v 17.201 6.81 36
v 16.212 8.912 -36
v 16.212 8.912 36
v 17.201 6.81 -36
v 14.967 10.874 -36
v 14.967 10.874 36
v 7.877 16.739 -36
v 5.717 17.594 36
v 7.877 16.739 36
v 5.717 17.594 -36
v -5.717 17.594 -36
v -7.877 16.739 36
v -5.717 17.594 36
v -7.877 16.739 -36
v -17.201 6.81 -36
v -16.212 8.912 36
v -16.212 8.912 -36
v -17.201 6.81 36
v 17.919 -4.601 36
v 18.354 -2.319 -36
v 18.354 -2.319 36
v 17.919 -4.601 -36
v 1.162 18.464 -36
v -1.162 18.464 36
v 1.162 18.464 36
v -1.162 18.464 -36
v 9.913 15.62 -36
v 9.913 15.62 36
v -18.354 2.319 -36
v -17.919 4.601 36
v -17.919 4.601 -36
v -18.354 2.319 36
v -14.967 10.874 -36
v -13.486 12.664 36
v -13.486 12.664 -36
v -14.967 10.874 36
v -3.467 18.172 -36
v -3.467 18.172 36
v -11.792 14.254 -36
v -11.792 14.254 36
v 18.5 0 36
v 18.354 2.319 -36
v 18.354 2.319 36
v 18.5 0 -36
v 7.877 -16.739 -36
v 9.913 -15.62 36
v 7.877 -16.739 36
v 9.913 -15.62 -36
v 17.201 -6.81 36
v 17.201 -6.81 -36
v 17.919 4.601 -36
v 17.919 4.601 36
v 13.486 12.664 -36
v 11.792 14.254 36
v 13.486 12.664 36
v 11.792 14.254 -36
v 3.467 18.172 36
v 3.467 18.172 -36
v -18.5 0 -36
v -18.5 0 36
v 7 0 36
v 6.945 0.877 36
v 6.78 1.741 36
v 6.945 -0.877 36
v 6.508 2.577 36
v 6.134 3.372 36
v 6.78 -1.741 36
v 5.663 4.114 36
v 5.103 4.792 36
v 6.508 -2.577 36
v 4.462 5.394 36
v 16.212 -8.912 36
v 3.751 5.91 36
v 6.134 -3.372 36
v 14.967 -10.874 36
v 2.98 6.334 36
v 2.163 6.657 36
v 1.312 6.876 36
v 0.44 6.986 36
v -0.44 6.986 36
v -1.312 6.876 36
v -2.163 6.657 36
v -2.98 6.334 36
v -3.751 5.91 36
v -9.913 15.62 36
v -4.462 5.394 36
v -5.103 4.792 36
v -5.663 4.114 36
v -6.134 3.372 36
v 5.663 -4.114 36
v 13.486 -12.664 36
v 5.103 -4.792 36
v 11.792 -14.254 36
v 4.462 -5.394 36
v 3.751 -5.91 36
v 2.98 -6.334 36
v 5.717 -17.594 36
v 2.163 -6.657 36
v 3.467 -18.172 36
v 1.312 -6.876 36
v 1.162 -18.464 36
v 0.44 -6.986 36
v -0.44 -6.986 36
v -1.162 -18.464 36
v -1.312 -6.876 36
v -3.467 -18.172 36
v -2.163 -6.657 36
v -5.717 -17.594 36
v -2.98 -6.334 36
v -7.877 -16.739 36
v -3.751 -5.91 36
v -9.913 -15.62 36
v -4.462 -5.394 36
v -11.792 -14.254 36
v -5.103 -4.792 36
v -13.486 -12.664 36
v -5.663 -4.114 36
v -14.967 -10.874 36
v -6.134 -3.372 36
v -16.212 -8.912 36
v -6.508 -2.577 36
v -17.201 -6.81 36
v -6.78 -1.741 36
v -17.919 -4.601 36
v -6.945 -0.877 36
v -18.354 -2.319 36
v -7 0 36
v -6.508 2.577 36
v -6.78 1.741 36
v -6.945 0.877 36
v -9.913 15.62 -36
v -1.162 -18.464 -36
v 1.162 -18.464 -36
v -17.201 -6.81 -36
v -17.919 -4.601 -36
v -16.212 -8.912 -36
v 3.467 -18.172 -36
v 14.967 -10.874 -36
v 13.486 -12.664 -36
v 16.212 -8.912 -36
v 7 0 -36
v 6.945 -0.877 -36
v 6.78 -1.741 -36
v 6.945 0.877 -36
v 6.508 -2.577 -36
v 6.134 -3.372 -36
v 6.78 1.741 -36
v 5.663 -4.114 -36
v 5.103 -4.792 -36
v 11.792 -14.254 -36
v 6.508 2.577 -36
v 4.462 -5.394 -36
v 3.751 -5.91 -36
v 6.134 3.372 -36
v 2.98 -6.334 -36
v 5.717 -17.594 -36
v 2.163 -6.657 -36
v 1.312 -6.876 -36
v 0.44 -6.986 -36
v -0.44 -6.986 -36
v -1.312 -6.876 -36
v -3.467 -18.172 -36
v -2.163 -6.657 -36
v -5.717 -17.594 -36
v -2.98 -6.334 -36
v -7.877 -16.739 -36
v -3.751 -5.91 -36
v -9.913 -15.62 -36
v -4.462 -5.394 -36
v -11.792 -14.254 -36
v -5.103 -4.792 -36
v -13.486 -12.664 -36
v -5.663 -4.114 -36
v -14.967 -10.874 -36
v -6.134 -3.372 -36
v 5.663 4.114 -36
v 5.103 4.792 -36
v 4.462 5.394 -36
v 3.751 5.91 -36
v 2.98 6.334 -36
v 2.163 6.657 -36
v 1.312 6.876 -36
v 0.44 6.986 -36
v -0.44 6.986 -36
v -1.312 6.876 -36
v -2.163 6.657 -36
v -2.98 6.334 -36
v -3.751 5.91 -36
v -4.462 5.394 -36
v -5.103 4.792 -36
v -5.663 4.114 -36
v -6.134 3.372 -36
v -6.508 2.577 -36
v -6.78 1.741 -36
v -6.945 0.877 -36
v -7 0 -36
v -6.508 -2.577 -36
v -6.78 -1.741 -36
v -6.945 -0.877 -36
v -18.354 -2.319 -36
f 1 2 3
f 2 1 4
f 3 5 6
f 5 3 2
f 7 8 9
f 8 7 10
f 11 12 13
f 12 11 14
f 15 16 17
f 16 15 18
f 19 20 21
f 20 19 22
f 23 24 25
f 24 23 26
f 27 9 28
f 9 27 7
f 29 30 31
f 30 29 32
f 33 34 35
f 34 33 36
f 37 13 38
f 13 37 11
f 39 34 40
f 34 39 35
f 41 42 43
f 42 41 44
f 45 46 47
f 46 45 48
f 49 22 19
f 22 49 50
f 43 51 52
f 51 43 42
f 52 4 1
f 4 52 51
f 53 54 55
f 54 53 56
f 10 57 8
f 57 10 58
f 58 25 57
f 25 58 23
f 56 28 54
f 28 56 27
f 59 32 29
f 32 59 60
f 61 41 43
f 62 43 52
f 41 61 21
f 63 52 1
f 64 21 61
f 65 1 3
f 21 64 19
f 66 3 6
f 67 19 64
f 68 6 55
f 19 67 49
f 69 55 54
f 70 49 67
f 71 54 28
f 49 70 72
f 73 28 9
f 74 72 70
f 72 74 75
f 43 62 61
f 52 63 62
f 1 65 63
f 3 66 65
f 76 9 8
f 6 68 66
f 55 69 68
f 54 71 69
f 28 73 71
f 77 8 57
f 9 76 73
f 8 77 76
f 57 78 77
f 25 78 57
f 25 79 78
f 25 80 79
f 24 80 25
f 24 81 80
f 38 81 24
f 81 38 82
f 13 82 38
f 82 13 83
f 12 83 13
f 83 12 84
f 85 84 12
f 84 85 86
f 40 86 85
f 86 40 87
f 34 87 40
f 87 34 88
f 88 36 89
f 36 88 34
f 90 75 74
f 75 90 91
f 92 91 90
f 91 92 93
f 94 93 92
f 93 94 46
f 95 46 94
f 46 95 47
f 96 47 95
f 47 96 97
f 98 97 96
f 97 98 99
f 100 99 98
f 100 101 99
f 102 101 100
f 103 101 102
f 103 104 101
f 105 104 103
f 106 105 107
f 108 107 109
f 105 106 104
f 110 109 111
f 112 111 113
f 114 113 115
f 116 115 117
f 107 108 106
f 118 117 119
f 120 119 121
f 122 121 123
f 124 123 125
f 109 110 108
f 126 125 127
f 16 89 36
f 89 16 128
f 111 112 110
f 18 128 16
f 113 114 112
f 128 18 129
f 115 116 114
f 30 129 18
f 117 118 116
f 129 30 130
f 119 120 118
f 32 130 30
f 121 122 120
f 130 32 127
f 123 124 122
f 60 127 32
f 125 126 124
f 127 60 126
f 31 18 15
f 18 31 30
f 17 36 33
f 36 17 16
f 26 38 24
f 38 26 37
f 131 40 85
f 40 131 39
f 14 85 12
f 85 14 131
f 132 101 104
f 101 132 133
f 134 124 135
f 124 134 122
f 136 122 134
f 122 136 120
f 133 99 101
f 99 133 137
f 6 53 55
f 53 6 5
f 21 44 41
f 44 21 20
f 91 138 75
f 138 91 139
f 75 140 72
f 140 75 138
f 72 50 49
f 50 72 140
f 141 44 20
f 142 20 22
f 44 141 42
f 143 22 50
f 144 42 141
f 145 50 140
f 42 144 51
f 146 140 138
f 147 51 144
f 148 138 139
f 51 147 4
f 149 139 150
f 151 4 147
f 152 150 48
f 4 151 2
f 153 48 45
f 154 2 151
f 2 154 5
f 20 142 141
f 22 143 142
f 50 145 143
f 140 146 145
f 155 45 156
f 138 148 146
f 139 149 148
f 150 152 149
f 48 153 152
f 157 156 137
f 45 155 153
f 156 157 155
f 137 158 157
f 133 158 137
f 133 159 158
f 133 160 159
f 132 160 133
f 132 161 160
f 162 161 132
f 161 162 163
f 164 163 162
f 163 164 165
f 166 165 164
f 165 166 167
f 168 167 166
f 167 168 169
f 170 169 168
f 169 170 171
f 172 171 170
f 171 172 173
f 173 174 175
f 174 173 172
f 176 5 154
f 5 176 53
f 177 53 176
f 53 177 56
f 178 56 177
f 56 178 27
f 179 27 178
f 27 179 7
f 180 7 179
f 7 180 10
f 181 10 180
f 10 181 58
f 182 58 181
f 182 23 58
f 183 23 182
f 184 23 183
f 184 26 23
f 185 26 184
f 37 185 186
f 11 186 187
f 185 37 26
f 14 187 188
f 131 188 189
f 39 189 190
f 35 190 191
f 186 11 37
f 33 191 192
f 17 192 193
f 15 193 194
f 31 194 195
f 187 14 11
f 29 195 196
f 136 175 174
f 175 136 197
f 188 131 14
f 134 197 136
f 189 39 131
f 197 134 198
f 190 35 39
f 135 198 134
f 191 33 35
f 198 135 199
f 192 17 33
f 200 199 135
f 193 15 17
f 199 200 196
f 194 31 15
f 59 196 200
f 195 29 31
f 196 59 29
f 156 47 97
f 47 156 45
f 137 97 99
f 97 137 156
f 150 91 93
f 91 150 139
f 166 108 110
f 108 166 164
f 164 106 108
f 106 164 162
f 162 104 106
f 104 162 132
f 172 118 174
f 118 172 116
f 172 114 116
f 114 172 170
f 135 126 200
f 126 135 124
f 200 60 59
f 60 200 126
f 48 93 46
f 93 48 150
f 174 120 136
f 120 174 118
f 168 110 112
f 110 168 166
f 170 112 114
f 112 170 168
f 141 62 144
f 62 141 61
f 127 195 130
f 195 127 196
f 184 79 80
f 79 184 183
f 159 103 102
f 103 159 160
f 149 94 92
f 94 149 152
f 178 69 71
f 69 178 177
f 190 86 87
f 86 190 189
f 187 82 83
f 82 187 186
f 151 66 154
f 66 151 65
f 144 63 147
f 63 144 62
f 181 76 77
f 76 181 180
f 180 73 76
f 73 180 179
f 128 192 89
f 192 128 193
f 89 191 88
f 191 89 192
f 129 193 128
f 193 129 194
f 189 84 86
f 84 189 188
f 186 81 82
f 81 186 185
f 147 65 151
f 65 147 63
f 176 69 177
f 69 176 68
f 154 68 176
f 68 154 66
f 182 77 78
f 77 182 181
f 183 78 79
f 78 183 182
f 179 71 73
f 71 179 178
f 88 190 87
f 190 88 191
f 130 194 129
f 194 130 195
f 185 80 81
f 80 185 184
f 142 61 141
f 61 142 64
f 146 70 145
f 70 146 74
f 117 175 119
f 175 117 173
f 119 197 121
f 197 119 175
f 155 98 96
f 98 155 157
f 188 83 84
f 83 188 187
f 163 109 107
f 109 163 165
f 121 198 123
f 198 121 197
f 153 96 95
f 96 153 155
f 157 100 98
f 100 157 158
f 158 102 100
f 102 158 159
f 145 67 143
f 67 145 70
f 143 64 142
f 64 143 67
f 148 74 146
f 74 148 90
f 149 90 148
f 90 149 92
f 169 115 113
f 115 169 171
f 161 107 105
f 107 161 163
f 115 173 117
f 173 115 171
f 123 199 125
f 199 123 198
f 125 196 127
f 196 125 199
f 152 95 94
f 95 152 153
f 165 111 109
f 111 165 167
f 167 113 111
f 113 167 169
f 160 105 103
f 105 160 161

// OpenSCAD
$fn = 50;


difference() {
	union() {
		translate(v = [0, 0, -36.0000000000]) {
			cylinder(h = 72, r = 18.5000000000);
		}
	}
	union() {
		translate(v = [0, 0, -100.0000000000]) {
			cylinder(h = 200, r = 7);
		}
	}
}
